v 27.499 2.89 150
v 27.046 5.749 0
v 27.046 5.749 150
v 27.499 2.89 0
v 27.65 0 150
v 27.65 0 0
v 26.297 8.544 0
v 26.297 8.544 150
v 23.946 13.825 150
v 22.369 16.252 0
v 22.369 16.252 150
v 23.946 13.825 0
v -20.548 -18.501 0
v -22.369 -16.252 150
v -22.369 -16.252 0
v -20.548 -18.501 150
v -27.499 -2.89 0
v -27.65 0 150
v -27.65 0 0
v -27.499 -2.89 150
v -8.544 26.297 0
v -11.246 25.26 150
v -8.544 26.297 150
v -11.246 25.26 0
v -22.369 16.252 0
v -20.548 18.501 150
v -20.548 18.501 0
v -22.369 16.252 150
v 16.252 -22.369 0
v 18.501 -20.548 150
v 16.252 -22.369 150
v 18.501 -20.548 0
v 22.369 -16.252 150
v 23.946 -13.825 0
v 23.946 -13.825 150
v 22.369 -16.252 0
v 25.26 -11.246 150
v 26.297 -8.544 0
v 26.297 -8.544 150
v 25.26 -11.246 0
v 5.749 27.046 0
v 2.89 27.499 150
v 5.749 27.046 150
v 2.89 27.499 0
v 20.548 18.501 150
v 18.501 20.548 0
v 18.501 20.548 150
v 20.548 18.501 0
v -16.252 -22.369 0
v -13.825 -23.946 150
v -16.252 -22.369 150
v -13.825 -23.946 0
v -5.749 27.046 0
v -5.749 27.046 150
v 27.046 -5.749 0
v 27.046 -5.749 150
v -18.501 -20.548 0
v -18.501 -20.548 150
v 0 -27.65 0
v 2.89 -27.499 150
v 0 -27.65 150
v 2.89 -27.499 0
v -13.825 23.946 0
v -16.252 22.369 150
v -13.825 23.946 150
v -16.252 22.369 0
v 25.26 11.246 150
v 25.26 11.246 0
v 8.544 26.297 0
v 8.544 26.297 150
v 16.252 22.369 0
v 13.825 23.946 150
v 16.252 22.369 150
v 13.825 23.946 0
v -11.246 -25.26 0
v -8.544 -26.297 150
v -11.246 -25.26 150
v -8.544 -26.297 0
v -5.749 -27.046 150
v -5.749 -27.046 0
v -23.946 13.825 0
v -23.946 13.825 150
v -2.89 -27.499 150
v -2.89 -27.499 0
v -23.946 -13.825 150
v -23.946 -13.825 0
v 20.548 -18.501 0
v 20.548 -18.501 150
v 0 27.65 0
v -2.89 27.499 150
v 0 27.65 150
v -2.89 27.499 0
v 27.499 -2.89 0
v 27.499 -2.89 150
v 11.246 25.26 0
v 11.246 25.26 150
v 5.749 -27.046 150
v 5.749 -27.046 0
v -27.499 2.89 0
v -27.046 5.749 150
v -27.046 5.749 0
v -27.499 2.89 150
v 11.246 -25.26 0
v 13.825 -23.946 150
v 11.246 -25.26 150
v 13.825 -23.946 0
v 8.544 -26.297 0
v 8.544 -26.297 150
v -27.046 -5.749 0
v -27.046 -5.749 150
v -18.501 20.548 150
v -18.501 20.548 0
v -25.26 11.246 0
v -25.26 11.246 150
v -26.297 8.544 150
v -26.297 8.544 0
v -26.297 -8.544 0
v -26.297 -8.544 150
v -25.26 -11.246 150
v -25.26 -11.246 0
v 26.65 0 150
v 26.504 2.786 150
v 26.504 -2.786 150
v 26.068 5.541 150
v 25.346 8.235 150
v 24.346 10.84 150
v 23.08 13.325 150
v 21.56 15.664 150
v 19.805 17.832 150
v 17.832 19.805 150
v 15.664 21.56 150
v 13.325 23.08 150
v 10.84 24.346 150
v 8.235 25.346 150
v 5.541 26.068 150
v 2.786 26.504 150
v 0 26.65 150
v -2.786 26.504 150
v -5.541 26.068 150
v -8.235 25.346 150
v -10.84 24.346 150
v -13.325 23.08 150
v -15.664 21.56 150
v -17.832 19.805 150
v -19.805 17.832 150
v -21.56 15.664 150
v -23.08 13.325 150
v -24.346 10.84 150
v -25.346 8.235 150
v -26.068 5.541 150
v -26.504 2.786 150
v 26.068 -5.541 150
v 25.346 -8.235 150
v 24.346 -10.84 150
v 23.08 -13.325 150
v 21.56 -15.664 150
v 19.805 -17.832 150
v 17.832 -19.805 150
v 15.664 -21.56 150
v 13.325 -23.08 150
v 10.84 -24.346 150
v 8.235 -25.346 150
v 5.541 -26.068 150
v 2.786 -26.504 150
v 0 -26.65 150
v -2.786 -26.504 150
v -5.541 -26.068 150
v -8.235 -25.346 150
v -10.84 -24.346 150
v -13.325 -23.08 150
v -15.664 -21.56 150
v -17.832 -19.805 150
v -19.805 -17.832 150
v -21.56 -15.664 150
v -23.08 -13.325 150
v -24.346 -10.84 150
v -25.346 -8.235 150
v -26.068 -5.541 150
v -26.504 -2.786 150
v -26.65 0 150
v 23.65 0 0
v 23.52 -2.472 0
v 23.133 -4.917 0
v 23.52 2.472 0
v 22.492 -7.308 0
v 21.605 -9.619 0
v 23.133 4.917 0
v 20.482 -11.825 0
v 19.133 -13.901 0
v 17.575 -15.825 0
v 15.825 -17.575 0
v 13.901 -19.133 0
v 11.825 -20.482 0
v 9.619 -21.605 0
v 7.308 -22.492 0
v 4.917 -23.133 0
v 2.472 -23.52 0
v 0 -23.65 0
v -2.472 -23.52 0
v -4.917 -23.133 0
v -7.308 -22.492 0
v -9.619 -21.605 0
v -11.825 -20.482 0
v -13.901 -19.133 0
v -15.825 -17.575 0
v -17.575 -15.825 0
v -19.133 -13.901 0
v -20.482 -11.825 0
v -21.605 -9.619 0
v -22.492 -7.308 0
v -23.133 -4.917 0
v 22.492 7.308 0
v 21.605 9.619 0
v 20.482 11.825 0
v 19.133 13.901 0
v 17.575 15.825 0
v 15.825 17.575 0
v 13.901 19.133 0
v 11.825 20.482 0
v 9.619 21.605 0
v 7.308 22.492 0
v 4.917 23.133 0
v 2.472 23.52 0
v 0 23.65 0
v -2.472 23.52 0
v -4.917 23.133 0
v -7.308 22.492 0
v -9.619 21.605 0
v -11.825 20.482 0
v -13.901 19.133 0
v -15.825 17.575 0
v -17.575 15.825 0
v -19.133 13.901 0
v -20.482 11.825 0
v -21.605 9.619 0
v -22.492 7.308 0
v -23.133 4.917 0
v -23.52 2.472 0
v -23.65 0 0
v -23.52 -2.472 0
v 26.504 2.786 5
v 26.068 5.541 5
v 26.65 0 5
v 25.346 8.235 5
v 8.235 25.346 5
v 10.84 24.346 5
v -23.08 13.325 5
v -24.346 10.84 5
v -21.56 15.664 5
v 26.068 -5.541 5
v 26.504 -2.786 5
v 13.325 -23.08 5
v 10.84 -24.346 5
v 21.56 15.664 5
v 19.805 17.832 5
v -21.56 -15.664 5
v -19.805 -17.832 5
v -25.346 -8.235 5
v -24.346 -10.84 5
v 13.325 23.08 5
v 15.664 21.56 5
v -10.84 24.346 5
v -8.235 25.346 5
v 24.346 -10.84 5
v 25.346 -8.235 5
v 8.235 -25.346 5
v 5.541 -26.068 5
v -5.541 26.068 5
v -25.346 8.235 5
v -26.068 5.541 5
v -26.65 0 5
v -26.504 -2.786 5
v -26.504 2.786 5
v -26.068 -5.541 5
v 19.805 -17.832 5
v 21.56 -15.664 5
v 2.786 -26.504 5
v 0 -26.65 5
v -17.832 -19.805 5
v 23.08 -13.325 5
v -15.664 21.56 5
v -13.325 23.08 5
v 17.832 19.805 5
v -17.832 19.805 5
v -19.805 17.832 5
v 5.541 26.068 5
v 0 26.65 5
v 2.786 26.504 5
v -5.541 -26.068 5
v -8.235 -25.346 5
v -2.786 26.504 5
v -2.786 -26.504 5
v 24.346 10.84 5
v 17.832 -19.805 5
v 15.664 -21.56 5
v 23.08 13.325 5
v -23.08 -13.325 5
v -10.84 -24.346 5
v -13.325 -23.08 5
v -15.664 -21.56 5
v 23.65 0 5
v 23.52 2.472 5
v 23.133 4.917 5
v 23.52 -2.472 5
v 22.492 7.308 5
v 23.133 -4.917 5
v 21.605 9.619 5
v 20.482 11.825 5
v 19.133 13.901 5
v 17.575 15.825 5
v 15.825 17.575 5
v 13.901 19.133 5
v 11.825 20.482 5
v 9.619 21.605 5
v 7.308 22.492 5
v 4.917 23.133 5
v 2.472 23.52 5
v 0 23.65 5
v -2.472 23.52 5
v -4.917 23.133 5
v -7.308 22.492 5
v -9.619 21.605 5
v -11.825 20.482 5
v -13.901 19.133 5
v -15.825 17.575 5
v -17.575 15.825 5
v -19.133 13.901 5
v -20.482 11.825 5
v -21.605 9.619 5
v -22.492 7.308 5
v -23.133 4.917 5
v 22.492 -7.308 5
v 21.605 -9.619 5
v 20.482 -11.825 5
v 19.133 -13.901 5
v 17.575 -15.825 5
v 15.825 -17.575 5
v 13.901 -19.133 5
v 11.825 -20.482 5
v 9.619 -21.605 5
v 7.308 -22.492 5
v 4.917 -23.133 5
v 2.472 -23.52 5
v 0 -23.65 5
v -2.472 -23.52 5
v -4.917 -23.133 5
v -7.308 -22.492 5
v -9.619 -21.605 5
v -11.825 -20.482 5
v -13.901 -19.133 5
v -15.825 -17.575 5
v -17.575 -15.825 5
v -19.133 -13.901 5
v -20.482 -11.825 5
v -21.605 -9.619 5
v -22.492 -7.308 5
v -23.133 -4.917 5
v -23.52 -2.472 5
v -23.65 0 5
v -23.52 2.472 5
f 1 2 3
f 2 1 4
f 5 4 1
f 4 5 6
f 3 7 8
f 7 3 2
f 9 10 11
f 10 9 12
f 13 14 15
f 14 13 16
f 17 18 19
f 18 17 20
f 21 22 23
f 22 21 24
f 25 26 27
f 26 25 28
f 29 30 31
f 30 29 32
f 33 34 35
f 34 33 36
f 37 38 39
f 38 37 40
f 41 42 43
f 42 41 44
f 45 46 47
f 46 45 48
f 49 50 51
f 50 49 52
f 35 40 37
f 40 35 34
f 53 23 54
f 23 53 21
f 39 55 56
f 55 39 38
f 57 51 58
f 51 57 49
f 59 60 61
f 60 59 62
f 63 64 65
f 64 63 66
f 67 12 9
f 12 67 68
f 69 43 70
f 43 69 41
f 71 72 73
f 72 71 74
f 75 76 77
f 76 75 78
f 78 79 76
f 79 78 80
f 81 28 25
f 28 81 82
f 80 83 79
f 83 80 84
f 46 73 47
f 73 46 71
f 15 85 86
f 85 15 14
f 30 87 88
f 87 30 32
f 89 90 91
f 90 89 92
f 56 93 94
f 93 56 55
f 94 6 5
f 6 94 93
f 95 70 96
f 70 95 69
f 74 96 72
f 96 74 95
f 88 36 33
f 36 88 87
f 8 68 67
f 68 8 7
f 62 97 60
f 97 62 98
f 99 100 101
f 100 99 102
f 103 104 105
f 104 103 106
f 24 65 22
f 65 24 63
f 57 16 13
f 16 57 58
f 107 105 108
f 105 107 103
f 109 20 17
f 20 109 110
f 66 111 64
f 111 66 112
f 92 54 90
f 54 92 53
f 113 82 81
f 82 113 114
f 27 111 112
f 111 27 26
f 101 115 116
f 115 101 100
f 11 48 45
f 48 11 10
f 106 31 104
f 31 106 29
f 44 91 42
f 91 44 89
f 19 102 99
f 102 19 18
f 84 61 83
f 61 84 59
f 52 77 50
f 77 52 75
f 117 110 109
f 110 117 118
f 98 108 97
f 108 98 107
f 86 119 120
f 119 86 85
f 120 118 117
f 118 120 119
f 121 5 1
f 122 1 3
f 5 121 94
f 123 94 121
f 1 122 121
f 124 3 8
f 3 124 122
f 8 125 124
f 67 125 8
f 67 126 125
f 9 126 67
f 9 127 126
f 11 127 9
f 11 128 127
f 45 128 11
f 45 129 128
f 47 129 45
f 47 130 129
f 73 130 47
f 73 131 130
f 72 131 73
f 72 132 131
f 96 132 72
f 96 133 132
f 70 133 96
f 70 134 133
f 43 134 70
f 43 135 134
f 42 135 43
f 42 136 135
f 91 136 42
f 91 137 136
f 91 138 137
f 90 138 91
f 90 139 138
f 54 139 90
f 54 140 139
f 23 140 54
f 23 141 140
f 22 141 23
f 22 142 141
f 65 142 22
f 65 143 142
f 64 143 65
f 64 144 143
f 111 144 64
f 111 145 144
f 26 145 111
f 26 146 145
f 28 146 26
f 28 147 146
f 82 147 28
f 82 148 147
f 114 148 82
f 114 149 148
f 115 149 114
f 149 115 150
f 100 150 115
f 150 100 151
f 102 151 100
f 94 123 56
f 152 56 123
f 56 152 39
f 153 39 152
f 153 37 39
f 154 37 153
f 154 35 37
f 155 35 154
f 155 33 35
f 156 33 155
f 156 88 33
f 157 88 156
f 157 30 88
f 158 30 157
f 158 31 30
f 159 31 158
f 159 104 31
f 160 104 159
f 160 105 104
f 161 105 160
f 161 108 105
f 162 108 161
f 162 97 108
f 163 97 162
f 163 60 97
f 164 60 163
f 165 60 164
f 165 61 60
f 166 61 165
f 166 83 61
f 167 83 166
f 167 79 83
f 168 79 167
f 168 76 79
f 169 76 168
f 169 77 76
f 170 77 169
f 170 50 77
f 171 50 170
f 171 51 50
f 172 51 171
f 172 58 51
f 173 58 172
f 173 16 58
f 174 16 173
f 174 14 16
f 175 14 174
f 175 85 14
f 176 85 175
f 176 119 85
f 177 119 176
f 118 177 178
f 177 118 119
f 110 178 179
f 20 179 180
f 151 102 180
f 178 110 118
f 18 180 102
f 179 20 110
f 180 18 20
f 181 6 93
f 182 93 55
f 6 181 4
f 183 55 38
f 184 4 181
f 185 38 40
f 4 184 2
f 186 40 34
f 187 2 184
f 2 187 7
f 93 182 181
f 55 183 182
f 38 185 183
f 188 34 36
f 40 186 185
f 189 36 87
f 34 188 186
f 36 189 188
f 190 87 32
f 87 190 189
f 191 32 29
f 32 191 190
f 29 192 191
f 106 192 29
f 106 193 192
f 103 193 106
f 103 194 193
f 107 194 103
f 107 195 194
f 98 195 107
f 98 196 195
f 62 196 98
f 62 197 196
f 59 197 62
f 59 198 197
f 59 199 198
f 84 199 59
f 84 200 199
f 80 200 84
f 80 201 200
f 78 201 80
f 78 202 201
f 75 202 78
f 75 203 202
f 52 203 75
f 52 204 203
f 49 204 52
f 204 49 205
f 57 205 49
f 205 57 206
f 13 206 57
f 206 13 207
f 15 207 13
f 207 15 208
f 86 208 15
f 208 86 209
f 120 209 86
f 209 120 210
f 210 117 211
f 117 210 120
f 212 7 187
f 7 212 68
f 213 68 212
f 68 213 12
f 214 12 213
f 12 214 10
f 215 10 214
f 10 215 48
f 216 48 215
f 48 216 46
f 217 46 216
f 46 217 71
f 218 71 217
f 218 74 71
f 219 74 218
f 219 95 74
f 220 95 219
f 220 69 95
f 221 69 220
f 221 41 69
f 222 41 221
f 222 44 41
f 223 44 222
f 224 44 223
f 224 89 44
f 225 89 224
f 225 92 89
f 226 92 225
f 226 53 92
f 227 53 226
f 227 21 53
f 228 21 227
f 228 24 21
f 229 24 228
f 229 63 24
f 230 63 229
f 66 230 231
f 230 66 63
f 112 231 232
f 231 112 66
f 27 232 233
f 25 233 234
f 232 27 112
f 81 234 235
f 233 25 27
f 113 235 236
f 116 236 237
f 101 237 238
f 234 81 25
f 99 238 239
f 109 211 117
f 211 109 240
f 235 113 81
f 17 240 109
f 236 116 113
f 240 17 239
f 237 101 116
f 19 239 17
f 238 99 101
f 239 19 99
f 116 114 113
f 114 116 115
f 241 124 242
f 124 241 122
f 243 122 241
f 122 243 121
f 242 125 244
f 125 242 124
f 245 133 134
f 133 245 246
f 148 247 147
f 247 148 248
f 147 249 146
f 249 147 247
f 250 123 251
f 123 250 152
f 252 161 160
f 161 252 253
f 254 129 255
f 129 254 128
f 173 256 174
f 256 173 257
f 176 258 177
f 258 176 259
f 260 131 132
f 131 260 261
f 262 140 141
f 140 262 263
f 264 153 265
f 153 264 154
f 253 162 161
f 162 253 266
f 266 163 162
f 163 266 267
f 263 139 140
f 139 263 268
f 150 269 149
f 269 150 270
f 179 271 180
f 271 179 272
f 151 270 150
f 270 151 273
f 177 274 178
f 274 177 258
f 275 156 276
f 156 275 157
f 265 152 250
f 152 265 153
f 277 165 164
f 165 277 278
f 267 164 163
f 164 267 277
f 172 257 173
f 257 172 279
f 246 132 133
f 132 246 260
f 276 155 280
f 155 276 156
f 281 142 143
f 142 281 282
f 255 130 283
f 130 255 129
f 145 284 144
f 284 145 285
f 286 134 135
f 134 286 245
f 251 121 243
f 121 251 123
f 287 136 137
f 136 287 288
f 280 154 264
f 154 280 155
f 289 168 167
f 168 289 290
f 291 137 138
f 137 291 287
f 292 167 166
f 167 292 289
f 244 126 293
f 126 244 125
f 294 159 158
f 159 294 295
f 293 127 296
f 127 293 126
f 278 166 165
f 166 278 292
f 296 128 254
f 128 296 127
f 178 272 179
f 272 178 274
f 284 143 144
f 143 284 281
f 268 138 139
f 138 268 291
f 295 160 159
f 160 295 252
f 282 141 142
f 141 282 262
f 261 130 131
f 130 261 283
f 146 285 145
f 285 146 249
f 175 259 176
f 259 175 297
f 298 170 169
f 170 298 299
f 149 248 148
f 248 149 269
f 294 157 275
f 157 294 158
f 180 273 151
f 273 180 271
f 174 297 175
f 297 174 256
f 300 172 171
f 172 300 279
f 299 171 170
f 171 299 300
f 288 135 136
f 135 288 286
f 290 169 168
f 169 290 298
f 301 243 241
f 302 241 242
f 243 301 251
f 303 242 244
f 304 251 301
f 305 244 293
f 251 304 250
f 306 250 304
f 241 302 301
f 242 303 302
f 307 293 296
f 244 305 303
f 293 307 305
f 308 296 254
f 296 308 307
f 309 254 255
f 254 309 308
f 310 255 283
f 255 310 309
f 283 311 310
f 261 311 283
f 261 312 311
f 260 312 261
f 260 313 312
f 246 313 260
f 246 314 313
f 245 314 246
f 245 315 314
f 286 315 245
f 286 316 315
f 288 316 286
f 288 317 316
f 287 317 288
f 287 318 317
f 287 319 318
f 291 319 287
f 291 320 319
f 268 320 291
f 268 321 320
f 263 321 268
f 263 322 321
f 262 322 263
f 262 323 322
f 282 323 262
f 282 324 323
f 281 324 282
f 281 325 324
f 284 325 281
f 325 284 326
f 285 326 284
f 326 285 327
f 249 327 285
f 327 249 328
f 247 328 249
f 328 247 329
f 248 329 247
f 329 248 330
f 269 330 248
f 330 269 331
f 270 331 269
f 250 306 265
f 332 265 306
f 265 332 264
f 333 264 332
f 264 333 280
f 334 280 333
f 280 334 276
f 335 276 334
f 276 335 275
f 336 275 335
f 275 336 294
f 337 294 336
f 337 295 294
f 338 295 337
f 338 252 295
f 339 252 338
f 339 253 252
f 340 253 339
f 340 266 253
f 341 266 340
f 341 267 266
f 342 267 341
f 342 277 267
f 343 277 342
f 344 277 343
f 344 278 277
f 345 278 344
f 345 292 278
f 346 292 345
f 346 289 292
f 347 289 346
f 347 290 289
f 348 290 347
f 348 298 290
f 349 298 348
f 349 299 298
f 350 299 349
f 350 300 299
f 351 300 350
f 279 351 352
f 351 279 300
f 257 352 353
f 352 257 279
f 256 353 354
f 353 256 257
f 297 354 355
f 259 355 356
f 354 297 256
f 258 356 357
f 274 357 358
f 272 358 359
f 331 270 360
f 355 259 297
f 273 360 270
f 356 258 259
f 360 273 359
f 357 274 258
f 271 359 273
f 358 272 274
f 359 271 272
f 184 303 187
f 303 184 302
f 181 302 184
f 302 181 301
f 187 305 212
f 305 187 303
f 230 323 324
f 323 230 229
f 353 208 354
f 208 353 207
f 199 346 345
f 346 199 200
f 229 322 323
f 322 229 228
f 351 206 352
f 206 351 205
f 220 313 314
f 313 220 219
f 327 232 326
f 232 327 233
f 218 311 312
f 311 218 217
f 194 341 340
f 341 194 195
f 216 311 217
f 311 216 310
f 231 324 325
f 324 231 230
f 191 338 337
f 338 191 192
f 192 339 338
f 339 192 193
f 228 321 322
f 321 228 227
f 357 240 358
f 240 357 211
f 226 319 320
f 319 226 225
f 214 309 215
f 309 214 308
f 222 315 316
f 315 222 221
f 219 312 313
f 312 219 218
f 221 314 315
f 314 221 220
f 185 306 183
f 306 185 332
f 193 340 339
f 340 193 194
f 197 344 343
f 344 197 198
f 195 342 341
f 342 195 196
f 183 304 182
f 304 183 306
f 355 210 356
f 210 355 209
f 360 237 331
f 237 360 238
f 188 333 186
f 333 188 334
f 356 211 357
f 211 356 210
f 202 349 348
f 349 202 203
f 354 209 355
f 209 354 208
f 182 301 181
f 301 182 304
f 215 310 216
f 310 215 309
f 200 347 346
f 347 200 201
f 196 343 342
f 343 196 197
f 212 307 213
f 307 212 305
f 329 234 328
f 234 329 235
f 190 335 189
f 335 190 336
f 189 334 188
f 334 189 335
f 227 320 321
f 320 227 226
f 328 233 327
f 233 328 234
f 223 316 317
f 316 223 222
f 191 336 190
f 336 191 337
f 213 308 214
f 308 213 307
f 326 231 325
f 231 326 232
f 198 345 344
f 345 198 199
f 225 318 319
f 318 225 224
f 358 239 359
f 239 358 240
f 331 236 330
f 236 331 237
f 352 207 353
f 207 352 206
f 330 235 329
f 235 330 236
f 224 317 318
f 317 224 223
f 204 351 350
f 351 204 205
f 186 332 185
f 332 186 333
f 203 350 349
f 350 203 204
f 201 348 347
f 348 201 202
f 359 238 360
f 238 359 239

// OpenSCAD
// file: ../utils/sector.scad
* Demo();

module Demo() {
  translate([0,0,0]) sector(30, 20, 70, i=3);
  translate([22,0,0]) sector(30, 20, 290, i=10);
  translate([22,22,0]) sector(30, 20, 180, i=2);
}

module sector(h, d, a, i=0) {
    if (a > 180) {
        difference() {
            cylinder(h=h, d=d);
            translate([0,0,-0.5]) sector(h+1, d+1, a-360); 
            translate([0,0,-0.5]) cylinder(h=h+1, d=i);
        }
    } else {
        difference() {
            cylinder(h=h, d=d);
            translate([-d/2, -d/2, -0.5])
                cube([d, d/2, h+1]);
            rotate([0,0,a]) translate([-d/2, 0, -0.5])
                cube([d, d/2, h+1]);
            translate([0,0,-0.5]) cylinder(h=h+1, d=i);
        }
    }
}  
// main file
$fn=60;

include <../utils/threads.scad>; 
include <../utils/sector.scad>;

thicknessExternal=5;
hole=14;
diameter=55.3;

difference() {
  height=150;
    cylinder(d=diameter, h=height);
    translate([0,0,-0.005]) cylinder(d=diameter-2,h=height+0.01);
}

// the base
union() {
  difference() {
    cylinder(d=diameter, h=thicknessExternal);
    translate([0,0,-0.005]) cylinder(d=diameter-8, h=thicknessExternal+0.01);
  }
}
